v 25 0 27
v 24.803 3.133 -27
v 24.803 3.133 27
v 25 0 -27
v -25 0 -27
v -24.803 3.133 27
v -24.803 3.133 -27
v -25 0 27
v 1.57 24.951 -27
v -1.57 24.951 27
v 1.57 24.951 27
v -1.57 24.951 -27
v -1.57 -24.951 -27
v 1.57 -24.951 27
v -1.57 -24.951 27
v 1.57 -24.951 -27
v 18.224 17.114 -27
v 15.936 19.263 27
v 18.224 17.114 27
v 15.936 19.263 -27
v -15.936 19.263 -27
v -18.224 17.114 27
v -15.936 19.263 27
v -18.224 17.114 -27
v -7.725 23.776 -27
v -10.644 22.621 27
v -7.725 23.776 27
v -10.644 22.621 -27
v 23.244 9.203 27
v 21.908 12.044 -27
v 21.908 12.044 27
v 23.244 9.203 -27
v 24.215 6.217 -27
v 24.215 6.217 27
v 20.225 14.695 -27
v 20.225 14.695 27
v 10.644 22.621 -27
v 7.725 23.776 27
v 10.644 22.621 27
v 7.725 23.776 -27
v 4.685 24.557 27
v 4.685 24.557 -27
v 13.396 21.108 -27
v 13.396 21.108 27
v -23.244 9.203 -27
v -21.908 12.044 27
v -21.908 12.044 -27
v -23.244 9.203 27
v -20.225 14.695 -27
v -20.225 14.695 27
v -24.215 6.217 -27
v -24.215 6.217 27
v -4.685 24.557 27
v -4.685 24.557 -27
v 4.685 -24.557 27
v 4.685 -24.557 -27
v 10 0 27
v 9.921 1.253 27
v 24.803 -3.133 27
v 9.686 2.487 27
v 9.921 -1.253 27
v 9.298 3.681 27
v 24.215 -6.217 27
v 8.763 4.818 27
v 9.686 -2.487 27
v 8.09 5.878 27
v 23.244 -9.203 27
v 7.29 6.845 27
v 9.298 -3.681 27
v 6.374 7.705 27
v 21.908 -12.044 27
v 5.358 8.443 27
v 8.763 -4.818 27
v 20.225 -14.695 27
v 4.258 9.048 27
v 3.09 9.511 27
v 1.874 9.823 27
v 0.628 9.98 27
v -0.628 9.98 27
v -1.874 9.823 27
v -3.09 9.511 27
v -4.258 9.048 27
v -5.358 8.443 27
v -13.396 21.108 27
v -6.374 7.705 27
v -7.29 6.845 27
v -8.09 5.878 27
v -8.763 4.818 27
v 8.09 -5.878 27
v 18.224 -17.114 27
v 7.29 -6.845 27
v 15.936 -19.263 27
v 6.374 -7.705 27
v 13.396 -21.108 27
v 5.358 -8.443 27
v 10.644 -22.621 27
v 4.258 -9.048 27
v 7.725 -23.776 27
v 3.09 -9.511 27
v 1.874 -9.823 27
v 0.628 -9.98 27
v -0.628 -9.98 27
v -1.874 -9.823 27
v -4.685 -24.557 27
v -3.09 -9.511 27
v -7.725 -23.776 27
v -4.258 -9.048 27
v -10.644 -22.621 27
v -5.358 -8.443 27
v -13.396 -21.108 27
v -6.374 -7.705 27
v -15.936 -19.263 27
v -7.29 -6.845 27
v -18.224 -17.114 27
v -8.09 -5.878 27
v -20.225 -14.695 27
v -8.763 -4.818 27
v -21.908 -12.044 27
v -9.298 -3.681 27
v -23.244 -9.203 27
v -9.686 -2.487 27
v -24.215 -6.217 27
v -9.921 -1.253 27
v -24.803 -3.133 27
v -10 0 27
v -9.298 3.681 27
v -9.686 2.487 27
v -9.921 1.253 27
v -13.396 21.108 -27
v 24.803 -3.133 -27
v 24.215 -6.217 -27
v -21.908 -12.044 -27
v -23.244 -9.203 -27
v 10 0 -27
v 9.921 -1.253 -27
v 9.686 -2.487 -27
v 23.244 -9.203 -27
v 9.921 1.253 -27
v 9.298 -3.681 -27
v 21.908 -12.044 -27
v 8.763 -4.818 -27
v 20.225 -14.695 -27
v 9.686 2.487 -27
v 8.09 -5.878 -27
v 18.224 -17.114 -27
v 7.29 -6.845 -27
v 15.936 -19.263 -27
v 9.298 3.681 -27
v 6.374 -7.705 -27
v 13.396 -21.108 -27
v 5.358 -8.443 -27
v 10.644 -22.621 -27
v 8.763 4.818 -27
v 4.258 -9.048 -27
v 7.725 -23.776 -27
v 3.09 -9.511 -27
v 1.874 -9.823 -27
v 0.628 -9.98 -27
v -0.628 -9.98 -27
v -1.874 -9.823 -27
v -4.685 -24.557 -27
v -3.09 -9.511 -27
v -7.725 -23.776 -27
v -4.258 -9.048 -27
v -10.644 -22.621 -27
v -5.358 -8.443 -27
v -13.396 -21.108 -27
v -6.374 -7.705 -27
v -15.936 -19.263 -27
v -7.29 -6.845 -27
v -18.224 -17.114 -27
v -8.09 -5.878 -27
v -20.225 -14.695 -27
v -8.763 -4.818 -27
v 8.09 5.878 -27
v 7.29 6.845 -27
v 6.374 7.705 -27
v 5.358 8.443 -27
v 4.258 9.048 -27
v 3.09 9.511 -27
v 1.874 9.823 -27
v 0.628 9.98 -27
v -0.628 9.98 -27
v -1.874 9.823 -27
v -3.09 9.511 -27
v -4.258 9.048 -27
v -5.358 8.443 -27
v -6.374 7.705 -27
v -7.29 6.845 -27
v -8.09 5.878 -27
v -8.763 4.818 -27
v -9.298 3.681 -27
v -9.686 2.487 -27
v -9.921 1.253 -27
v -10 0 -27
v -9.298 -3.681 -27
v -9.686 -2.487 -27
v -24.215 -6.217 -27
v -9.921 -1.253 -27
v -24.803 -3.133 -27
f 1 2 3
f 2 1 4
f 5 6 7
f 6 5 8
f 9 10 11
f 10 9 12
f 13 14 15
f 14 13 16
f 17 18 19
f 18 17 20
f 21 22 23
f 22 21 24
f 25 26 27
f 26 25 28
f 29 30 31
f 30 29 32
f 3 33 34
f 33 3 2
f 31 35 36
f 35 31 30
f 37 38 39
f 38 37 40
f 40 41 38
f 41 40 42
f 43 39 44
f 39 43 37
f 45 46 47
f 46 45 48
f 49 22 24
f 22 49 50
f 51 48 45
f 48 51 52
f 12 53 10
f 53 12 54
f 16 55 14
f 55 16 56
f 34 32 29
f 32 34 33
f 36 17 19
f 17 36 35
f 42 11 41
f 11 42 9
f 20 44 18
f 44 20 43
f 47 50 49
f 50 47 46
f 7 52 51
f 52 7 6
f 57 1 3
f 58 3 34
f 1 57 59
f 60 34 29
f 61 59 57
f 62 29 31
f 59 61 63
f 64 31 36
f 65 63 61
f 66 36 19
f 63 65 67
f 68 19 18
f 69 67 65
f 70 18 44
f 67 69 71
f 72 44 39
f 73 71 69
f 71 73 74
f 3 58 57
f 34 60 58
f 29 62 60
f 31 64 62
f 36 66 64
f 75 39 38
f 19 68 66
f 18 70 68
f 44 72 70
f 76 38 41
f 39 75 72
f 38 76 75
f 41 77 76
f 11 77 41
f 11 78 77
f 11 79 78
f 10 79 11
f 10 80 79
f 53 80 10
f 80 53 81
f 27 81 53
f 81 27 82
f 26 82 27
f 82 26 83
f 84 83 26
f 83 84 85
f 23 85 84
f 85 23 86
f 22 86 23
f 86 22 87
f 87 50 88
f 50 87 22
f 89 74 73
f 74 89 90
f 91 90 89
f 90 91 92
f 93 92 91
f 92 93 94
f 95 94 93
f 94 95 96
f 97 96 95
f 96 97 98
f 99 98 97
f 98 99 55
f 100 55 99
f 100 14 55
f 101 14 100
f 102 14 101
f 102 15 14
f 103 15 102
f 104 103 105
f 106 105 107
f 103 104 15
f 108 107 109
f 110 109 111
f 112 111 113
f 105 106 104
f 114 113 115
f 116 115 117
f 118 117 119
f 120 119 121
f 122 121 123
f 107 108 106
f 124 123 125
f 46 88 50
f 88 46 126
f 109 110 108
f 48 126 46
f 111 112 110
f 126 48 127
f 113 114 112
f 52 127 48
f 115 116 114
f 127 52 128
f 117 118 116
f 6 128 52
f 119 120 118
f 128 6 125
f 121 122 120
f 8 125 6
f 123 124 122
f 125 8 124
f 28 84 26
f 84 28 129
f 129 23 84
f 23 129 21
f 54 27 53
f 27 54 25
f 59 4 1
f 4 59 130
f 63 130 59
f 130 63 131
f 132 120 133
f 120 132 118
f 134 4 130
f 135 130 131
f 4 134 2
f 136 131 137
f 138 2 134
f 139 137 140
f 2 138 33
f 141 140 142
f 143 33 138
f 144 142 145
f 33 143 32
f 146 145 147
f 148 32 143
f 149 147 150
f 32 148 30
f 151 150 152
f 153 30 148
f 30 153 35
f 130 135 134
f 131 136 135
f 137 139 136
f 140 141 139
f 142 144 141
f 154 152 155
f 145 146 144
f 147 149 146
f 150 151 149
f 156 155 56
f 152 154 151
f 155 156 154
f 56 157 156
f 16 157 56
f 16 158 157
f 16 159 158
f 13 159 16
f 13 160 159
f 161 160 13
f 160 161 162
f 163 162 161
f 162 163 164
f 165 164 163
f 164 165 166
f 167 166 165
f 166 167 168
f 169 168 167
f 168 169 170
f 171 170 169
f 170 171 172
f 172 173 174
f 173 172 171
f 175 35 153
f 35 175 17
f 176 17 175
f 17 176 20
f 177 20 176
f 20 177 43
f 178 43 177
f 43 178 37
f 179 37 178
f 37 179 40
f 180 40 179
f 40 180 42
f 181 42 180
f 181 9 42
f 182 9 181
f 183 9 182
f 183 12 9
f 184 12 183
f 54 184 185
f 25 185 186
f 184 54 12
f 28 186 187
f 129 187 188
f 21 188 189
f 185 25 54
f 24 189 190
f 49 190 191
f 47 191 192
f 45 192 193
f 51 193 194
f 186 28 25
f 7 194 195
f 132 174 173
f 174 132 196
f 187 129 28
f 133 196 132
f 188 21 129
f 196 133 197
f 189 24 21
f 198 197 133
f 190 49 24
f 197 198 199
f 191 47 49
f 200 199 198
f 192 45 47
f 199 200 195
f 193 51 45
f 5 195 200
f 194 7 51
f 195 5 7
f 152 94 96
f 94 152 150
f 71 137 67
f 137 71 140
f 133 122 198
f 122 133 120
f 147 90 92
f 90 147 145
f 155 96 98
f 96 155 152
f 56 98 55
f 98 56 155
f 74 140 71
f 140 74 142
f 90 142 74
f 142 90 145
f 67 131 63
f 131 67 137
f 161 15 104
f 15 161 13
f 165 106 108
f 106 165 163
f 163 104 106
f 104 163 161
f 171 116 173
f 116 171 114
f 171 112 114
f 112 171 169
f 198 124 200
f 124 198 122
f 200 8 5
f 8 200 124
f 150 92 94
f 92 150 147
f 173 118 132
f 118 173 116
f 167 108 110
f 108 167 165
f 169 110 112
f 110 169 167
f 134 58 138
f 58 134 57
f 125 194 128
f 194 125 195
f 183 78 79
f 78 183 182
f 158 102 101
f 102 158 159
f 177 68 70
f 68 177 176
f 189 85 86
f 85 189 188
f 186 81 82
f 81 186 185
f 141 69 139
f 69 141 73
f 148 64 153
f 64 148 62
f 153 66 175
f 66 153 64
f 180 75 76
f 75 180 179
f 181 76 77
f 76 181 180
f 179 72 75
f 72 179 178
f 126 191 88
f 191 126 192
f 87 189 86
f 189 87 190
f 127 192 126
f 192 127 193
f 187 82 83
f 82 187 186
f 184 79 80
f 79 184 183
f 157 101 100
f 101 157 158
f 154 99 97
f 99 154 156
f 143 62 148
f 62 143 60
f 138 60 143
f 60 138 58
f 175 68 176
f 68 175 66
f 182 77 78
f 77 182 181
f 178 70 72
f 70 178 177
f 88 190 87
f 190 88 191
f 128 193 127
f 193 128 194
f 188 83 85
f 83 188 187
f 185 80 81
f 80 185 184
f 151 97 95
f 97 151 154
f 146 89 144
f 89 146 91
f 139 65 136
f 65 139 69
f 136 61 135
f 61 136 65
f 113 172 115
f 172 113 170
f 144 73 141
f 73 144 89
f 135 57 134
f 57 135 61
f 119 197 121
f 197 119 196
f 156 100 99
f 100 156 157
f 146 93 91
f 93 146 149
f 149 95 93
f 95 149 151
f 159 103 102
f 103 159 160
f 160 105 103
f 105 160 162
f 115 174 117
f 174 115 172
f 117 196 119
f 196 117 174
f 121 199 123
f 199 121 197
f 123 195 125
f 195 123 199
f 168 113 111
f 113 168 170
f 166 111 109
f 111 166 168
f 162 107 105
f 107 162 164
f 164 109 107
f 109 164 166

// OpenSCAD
$fn = 50;


difference() {
	union() {
		translate(v = [0, 0, -27.0000000000]) {
			cylinder(h = 54, r = 25.0000000000);
		}
	}
	union() {
		translate(v = [0, 0, -100.0000000000]) {
			cylinder(h = 200, r = 10);
		}
	}
}
